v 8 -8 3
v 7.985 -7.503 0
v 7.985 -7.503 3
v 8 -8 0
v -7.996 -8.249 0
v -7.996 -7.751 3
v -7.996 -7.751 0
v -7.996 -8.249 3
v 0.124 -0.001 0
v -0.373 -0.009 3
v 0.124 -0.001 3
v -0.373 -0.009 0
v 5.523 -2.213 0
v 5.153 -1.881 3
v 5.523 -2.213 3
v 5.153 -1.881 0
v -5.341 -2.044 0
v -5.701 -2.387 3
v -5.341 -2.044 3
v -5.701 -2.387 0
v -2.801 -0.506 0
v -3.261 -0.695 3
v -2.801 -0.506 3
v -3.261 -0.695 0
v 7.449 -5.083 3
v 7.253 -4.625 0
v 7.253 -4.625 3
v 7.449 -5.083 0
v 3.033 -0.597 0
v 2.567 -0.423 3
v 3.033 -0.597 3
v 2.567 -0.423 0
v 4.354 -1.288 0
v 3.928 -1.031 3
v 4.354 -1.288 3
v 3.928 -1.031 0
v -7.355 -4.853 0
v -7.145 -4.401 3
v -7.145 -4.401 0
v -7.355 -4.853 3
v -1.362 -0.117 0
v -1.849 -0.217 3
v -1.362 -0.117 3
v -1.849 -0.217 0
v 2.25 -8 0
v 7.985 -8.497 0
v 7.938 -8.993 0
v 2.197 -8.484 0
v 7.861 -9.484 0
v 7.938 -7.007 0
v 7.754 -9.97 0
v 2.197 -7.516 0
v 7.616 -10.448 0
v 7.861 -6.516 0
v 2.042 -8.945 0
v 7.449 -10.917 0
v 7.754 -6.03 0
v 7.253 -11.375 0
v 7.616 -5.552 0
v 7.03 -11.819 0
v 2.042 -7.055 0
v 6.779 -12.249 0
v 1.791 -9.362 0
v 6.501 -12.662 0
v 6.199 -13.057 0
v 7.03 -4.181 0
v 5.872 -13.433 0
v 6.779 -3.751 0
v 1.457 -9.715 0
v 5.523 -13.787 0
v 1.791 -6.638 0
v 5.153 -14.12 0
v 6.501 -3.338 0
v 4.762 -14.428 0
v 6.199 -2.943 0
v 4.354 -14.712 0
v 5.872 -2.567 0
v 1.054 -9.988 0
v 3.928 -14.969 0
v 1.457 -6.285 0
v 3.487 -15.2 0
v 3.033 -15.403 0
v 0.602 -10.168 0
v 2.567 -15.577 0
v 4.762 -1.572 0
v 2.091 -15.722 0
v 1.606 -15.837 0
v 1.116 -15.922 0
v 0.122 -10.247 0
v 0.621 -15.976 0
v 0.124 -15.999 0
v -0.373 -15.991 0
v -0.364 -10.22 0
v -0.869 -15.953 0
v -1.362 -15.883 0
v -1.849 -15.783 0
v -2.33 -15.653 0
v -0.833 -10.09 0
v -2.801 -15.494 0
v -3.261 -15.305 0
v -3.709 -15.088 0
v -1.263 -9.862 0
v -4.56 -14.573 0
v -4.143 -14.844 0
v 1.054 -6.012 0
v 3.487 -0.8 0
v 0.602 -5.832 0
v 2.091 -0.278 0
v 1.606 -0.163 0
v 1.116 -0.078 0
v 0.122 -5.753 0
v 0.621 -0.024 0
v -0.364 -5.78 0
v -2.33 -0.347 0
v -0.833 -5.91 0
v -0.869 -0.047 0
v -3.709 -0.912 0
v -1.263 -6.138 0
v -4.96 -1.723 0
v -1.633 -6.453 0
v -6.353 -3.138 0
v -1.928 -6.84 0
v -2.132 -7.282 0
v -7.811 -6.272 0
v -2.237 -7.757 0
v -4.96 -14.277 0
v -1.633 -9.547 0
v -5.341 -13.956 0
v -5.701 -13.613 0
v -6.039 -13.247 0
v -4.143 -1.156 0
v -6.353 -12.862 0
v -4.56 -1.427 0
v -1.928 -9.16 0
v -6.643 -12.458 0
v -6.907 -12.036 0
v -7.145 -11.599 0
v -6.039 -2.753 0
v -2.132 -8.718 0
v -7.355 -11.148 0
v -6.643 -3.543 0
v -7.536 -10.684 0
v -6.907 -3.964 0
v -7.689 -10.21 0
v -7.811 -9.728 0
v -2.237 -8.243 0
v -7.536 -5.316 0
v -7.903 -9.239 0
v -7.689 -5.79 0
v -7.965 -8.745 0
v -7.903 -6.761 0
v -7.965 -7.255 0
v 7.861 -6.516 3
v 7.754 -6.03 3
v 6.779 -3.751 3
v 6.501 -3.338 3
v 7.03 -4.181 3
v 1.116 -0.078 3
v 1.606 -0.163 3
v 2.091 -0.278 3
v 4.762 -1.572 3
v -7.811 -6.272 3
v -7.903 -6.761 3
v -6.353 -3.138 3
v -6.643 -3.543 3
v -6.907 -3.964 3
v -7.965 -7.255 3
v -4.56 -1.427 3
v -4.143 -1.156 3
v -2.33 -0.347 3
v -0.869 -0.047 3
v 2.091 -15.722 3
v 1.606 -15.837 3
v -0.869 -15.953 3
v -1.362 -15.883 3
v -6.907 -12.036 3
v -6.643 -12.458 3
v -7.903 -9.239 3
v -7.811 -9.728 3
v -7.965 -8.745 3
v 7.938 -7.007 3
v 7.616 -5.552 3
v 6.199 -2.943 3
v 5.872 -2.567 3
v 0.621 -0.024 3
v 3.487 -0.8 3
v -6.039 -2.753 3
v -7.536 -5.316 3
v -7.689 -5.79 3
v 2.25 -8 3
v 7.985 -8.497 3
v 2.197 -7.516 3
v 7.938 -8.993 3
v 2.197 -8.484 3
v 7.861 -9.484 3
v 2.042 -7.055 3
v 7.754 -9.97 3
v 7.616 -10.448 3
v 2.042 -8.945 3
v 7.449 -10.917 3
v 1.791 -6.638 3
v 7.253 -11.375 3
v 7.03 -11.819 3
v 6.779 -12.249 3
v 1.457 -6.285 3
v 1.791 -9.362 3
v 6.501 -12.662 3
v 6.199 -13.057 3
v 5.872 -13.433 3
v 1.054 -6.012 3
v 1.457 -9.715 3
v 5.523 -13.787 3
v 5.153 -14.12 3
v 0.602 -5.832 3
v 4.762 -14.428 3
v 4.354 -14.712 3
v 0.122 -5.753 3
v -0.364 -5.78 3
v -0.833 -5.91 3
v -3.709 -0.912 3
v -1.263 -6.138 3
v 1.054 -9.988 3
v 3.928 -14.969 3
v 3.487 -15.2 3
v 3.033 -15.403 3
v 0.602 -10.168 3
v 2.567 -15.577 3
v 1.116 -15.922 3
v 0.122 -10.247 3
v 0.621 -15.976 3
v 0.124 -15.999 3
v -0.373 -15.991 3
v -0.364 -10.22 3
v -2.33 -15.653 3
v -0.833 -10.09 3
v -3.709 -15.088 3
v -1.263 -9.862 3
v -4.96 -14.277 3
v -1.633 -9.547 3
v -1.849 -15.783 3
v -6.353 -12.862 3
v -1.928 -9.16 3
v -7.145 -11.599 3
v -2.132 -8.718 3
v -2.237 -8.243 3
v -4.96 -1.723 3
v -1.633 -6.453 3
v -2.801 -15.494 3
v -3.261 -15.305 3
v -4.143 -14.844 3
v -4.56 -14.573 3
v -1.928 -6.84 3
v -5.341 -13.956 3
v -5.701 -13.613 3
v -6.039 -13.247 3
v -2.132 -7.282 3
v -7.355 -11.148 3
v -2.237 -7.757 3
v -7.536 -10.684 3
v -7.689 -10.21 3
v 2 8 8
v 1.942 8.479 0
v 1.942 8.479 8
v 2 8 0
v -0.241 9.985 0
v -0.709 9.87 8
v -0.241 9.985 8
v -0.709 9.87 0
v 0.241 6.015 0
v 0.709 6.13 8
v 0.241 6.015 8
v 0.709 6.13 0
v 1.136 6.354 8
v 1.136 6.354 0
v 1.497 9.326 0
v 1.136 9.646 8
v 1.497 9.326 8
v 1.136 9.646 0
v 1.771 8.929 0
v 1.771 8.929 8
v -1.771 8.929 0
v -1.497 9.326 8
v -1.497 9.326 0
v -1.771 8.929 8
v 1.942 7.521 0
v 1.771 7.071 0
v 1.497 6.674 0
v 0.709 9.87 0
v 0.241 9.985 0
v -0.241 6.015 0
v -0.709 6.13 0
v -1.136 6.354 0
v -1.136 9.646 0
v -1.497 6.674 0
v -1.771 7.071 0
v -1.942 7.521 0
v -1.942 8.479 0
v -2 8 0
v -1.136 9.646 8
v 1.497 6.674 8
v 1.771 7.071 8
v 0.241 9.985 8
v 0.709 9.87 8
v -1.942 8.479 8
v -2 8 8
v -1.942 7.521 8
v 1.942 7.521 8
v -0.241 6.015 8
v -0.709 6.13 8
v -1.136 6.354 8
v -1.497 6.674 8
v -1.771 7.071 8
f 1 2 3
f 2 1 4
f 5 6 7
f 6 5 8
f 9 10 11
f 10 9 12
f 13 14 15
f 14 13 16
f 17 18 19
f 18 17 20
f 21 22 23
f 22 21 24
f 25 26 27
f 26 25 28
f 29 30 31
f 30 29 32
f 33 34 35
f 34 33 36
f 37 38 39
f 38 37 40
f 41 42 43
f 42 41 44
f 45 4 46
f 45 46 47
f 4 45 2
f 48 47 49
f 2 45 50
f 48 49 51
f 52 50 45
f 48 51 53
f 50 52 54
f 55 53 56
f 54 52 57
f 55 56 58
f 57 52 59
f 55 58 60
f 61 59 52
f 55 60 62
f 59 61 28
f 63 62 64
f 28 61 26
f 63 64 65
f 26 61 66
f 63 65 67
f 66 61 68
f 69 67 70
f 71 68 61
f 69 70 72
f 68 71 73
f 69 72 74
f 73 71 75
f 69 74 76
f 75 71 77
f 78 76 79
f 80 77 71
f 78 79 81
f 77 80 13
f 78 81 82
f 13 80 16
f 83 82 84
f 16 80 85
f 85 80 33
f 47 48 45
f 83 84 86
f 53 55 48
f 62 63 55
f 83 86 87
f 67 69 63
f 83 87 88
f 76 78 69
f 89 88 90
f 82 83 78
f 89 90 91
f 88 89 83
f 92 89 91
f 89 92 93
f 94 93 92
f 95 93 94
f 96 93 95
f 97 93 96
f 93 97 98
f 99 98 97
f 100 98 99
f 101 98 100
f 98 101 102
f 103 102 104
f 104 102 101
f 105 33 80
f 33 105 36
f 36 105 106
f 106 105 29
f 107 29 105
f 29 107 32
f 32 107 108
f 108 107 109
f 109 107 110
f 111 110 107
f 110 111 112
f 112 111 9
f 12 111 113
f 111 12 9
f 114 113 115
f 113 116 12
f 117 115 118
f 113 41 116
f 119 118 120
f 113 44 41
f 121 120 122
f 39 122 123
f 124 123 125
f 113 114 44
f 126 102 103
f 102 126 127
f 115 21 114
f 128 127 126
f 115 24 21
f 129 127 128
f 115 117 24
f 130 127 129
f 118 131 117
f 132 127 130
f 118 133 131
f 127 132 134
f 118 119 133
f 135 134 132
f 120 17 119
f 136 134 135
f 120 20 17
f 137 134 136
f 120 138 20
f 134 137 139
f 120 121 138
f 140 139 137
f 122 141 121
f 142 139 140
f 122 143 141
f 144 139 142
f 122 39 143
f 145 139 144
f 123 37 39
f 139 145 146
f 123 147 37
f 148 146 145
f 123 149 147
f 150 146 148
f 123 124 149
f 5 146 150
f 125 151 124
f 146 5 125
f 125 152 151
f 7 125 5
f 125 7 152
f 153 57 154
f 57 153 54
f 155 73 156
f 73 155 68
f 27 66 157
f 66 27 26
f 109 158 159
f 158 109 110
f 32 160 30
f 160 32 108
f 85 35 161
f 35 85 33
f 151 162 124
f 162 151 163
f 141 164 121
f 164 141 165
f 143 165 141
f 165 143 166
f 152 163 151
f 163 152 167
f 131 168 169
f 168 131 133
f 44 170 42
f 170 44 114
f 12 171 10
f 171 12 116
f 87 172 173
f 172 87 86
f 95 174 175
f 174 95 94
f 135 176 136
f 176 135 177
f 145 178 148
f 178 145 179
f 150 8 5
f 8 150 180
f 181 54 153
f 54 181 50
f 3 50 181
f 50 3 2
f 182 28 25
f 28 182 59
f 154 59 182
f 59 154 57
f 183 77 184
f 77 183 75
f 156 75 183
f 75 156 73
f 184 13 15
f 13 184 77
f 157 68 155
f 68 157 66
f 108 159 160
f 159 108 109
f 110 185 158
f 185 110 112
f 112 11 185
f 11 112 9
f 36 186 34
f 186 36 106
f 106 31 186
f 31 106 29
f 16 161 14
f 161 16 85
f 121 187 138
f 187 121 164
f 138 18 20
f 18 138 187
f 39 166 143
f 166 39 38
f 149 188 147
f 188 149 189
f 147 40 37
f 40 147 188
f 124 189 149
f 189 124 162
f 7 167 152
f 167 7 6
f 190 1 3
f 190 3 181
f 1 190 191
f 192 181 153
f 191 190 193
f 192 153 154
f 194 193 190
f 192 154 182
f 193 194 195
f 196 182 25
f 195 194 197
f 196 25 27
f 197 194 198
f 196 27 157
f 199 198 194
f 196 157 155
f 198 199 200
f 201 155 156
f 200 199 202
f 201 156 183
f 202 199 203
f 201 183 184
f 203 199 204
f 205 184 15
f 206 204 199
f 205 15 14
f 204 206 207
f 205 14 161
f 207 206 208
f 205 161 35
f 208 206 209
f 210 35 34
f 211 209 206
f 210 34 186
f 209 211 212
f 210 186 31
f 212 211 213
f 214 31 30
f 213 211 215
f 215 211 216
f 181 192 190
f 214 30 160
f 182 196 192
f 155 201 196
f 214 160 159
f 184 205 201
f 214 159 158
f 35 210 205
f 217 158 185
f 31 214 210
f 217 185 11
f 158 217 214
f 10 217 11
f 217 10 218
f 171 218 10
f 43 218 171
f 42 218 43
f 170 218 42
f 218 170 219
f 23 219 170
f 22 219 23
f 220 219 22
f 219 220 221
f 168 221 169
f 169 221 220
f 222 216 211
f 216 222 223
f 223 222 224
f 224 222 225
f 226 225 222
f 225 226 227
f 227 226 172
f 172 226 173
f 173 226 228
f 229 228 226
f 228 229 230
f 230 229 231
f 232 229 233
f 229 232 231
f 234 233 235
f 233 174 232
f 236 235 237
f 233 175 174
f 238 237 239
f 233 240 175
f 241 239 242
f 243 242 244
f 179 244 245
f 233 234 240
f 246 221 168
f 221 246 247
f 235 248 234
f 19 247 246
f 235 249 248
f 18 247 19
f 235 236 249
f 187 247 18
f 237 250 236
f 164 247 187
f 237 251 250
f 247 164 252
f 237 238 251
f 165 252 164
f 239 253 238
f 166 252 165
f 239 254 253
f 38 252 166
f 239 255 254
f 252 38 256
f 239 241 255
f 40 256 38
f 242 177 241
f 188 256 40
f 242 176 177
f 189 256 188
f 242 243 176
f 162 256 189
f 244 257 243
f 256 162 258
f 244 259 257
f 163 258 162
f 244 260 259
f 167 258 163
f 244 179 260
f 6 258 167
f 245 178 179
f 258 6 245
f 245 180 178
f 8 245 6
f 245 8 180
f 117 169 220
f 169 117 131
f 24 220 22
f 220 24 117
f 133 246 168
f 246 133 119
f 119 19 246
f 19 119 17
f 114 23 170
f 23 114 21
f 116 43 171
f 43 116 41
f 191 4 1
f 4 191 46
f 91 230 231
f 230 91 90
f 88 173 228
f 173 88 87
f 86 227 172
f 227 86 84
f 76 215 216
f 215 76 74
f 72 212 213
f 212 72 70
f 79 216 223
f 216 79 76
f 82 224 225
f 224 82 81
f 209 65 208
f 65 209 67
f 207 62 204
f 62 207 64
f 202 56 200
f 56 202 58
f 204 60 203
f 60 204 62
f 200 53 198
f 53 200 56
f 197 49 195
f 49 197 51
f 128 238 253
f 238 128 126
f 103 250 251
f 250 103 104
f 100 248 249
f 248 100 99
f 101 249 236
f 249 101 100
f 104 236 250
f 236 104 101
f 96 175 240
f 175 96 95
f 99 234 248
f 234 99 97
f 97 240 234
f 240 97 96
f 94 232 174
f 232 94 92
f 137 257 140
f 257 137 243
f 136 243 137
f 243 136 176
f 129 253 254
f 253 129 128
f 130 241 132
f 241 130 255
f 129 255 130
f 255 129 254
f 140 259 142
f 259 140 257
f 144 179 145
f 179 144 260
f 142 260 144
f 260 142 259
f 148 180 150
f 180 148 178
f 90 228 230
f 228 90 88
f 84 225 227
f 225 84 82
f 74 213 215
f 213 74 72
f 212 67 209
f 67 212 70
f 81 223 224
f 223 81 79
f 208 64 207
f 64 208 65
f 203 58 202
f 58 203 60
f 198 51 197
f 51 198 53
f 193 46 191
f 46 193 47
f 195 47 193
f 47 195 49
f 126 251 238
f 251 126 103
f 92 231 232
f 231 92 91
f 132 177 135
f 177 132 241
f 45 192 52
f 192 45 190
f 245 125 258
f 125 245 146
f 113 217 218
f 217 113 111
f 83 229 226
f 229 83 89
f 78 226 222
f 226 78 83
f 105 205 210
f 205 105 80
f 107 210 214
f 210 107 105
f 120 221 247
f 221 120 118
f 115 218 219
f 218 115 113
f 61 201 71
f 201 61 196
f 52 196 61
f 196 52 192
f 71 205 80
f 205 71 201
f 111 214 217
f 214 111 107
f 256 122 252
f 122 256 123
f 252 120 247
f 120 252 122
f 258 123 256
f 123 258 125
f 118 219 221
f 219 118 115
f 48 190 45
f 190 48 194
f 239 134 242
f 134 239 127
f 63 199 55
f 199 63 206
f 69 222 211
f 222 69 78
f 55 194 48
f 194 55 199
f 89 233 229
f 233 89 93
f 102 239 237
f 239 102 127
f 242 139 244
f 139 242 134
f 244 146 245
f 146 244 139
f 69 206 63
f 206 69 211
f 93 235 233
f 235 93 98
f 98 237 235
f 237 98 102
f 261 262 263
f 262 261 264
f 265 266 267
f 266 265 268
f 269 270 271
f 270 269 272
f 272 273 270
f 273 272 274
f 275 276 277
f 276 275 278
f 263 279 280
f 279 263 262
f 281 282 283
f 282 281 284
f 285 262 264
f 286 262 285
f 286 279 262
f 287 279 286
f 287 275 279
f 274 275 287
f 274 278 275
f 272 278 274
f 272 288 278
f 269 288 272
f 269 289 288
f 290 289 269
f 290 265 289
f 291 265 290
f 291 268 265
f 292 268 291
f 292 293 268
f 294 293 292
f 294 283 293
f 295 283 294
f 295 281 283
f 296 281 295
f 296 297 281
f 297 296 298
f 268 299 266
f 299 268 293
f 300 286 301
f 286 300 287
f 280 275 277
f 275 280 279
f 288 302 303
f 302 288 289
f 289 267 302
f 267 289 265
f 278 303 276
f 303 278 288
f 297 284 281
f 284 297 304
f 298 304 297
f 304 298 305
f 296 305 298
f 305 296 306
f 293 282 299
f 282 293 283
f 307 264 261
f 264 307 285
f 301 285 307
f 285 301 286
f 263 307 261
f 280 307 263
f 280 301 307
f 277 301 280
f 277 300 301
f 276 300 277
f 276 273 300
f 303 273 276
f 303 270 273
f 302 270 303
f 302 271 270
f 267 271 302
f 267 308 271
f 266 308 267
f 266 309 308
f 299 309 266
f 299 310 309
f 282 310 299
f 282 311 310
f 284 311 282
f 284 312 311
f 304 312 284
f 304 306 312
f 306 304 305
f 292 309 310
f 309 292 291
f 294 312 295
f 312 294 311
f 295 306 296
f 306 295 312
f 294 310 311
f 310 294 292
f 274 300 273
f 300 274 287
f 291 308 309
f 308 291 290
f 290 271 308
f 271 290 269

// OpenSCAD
$fa = 1;
$fs = 0.5;

translate([0, 8, 0])
cylinder(r=2, h=8);

translate([0, -8, 0])
difference() {
    cylinder(r=8, h=3);
    cylinder(r=2.25, h=10, center=true);
}
